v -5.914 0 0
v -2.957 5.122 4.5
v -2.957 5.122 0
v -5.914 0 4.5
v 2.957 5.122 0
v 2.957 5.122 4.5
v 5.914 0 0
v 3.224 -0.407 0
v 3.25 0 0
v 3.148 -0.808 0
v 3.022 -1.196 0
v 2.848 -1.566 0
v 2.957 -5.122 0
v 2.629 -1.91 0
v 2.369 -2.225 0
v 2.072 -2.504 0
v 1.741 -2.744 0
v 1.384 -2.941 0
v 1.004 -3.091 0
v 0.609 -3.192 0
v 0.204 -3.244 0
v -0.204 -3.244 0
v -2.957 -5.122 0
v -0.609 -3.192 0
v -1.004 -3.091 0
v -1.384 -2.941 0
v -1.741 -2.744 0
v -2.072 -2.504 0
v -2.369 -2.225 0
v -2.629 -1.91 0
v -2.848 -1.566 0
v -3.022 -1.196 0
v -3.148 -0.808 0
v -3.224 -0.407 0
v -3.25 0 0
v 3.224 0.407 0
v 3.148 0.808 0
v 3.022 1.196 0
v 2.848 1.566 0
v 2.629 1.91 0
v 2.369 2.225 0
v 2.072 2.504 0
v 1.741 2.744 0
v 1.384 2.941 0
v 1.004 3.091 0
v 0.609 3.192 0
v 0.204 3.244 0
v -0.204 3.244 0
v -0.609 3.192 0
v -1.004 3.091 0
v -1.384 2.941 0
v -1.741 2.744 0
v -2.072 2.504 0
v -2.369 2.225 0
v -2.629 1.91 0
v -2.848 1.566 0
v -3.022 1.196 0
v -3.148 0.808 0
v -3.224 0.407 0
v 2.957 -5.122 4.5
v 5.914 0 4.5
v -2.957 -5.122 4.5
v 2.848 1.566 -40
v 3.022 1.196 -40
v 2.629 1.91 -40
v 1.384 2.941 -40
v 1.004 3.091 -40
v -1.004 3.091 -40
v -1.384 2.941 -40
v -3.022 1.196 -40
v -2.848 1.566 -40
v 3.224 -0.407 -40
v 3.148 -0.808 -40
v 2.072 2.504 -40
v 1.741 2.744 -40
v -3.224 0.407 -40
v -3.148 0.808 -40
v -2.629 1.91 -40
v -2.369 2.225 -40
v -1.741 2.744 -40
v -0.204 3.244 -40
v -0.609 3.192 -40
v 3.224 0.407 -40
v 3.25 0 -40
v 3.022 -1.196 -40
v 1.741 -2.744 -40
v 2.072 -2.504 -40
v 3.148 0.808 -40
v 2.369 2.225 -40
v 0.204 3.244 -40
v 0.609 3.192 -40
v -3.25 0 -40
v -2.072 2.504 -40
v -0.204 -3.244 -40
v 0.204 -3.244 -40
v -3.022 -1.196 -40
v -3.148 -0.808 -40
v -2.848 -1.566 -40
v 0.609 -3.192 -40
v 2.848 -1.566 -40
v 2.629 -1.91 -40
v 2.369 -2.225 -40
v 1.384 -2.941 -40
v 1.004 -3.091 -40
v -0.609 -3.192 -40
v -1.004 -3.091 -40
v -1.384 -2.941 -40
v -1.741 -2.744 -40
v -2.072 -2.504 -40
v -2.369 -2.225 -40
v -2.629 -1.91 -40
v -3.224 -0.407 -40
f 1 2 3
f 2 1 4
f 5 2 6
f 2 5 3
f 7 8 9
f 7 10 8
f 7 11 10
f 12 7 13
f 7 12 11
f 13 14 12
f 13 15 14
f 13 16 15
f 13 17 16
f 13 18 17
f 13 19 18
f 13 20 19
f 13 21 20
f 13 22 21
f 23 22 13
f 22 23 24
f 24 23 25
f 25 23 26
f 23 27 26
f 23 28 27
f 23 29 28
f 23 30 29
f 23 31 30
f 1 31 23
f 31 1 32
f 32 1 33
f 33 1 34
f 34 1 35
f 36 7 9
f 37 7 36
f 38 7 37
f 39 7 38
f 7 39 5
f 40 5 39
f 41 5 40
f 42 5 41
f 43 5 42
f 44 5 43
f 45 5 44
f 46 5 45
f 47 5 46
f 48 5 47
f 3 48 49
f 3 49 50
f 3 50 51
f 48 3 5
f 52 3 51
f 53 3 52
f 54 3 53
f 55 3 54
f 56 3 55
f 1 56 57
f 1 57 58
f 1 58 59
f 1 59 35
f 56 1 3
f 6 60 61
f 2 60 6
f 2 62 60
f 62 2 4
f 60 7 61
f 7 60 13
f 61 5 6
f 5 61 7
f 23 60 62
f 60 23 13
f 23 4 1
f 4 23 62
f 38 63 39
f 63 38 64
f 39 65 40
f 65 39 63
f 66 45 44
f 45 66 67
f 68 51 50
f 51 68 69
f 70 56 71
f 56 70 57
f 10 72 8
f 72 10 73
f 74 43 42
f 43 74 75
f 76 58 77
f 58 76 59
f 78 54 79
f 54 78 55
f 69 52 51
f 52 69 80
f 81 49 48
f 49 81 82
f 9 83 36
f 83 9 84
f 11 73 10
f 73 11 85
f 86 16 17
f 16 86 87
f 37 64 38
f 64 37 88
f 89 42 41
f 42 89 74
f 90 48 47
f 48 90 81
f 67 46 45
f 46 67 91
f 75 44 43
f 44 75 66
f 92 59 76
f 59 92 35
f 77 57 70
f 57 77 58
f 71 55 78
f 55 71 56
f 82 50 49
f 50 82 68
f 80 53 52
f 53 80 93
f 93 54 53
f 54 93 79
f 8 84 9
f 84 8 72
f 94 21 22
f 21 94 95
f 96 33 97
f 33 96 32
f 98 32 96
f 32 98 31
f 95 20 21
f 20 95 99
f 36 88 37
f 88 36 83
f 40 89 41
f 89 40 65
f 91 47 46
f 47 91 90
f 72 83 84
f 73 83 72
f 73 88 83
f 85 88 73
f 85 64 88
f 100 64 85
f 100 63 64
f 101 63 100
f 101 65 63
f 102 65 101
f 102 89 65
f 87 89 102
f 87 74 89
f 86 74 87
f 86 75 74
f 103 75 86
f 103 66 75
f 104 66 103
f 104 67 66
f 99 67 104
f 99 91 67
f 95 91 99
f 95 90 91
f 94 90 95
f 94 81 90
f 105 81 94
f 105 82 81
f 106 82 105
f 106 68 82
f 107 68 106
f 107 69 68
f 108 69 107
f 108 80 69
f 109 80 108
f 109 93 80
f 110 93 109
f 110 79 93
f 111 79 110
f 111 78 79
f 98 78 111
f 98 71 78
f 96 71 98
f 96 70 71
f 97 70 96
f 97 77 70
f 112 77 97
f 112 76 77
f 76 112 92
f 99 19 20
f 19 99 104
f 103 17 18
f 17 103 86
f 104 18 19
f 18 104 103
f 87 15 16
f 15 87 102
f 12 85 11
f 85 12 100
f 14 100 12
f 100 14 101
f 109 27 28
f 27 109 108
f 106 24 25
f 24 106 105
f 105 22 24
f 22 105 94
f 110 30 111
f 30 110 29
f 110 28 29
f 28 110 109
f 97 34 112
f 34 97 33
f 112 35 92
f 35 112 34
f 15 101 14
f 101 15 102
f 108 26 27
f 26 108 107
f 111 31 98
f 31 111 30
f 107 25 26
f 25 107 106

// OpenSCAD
$fn = 50;


difference() {
	union() {
		translate(v = [0, 0, 0]) {
			rotate(a = [0, 0, 0]) {
				translate(v = [0, 0, 0]) {
					rotate(a = [0, 0, 0]) {
						linear_extrude(height = 4.5000000000) {
							polygon(points = [[5.9142500000, 0.0000000000], [2.9571250000, 5.1218907443], [-2.9571250000, 5.1218907443], [-5.9142500000, 0.0000000000], [-2.9571250000, -5.1218907443], [2.9571250000, -5.1218907443]]);
						}
					}
				}
			}
		}
		translate(v = [0, 0, -40]) {
			rotate(a = [0, 0, 0]) {
				cylinder(h = 40, r = 3.2500000000);
			}
		}
	}
	union();
}
